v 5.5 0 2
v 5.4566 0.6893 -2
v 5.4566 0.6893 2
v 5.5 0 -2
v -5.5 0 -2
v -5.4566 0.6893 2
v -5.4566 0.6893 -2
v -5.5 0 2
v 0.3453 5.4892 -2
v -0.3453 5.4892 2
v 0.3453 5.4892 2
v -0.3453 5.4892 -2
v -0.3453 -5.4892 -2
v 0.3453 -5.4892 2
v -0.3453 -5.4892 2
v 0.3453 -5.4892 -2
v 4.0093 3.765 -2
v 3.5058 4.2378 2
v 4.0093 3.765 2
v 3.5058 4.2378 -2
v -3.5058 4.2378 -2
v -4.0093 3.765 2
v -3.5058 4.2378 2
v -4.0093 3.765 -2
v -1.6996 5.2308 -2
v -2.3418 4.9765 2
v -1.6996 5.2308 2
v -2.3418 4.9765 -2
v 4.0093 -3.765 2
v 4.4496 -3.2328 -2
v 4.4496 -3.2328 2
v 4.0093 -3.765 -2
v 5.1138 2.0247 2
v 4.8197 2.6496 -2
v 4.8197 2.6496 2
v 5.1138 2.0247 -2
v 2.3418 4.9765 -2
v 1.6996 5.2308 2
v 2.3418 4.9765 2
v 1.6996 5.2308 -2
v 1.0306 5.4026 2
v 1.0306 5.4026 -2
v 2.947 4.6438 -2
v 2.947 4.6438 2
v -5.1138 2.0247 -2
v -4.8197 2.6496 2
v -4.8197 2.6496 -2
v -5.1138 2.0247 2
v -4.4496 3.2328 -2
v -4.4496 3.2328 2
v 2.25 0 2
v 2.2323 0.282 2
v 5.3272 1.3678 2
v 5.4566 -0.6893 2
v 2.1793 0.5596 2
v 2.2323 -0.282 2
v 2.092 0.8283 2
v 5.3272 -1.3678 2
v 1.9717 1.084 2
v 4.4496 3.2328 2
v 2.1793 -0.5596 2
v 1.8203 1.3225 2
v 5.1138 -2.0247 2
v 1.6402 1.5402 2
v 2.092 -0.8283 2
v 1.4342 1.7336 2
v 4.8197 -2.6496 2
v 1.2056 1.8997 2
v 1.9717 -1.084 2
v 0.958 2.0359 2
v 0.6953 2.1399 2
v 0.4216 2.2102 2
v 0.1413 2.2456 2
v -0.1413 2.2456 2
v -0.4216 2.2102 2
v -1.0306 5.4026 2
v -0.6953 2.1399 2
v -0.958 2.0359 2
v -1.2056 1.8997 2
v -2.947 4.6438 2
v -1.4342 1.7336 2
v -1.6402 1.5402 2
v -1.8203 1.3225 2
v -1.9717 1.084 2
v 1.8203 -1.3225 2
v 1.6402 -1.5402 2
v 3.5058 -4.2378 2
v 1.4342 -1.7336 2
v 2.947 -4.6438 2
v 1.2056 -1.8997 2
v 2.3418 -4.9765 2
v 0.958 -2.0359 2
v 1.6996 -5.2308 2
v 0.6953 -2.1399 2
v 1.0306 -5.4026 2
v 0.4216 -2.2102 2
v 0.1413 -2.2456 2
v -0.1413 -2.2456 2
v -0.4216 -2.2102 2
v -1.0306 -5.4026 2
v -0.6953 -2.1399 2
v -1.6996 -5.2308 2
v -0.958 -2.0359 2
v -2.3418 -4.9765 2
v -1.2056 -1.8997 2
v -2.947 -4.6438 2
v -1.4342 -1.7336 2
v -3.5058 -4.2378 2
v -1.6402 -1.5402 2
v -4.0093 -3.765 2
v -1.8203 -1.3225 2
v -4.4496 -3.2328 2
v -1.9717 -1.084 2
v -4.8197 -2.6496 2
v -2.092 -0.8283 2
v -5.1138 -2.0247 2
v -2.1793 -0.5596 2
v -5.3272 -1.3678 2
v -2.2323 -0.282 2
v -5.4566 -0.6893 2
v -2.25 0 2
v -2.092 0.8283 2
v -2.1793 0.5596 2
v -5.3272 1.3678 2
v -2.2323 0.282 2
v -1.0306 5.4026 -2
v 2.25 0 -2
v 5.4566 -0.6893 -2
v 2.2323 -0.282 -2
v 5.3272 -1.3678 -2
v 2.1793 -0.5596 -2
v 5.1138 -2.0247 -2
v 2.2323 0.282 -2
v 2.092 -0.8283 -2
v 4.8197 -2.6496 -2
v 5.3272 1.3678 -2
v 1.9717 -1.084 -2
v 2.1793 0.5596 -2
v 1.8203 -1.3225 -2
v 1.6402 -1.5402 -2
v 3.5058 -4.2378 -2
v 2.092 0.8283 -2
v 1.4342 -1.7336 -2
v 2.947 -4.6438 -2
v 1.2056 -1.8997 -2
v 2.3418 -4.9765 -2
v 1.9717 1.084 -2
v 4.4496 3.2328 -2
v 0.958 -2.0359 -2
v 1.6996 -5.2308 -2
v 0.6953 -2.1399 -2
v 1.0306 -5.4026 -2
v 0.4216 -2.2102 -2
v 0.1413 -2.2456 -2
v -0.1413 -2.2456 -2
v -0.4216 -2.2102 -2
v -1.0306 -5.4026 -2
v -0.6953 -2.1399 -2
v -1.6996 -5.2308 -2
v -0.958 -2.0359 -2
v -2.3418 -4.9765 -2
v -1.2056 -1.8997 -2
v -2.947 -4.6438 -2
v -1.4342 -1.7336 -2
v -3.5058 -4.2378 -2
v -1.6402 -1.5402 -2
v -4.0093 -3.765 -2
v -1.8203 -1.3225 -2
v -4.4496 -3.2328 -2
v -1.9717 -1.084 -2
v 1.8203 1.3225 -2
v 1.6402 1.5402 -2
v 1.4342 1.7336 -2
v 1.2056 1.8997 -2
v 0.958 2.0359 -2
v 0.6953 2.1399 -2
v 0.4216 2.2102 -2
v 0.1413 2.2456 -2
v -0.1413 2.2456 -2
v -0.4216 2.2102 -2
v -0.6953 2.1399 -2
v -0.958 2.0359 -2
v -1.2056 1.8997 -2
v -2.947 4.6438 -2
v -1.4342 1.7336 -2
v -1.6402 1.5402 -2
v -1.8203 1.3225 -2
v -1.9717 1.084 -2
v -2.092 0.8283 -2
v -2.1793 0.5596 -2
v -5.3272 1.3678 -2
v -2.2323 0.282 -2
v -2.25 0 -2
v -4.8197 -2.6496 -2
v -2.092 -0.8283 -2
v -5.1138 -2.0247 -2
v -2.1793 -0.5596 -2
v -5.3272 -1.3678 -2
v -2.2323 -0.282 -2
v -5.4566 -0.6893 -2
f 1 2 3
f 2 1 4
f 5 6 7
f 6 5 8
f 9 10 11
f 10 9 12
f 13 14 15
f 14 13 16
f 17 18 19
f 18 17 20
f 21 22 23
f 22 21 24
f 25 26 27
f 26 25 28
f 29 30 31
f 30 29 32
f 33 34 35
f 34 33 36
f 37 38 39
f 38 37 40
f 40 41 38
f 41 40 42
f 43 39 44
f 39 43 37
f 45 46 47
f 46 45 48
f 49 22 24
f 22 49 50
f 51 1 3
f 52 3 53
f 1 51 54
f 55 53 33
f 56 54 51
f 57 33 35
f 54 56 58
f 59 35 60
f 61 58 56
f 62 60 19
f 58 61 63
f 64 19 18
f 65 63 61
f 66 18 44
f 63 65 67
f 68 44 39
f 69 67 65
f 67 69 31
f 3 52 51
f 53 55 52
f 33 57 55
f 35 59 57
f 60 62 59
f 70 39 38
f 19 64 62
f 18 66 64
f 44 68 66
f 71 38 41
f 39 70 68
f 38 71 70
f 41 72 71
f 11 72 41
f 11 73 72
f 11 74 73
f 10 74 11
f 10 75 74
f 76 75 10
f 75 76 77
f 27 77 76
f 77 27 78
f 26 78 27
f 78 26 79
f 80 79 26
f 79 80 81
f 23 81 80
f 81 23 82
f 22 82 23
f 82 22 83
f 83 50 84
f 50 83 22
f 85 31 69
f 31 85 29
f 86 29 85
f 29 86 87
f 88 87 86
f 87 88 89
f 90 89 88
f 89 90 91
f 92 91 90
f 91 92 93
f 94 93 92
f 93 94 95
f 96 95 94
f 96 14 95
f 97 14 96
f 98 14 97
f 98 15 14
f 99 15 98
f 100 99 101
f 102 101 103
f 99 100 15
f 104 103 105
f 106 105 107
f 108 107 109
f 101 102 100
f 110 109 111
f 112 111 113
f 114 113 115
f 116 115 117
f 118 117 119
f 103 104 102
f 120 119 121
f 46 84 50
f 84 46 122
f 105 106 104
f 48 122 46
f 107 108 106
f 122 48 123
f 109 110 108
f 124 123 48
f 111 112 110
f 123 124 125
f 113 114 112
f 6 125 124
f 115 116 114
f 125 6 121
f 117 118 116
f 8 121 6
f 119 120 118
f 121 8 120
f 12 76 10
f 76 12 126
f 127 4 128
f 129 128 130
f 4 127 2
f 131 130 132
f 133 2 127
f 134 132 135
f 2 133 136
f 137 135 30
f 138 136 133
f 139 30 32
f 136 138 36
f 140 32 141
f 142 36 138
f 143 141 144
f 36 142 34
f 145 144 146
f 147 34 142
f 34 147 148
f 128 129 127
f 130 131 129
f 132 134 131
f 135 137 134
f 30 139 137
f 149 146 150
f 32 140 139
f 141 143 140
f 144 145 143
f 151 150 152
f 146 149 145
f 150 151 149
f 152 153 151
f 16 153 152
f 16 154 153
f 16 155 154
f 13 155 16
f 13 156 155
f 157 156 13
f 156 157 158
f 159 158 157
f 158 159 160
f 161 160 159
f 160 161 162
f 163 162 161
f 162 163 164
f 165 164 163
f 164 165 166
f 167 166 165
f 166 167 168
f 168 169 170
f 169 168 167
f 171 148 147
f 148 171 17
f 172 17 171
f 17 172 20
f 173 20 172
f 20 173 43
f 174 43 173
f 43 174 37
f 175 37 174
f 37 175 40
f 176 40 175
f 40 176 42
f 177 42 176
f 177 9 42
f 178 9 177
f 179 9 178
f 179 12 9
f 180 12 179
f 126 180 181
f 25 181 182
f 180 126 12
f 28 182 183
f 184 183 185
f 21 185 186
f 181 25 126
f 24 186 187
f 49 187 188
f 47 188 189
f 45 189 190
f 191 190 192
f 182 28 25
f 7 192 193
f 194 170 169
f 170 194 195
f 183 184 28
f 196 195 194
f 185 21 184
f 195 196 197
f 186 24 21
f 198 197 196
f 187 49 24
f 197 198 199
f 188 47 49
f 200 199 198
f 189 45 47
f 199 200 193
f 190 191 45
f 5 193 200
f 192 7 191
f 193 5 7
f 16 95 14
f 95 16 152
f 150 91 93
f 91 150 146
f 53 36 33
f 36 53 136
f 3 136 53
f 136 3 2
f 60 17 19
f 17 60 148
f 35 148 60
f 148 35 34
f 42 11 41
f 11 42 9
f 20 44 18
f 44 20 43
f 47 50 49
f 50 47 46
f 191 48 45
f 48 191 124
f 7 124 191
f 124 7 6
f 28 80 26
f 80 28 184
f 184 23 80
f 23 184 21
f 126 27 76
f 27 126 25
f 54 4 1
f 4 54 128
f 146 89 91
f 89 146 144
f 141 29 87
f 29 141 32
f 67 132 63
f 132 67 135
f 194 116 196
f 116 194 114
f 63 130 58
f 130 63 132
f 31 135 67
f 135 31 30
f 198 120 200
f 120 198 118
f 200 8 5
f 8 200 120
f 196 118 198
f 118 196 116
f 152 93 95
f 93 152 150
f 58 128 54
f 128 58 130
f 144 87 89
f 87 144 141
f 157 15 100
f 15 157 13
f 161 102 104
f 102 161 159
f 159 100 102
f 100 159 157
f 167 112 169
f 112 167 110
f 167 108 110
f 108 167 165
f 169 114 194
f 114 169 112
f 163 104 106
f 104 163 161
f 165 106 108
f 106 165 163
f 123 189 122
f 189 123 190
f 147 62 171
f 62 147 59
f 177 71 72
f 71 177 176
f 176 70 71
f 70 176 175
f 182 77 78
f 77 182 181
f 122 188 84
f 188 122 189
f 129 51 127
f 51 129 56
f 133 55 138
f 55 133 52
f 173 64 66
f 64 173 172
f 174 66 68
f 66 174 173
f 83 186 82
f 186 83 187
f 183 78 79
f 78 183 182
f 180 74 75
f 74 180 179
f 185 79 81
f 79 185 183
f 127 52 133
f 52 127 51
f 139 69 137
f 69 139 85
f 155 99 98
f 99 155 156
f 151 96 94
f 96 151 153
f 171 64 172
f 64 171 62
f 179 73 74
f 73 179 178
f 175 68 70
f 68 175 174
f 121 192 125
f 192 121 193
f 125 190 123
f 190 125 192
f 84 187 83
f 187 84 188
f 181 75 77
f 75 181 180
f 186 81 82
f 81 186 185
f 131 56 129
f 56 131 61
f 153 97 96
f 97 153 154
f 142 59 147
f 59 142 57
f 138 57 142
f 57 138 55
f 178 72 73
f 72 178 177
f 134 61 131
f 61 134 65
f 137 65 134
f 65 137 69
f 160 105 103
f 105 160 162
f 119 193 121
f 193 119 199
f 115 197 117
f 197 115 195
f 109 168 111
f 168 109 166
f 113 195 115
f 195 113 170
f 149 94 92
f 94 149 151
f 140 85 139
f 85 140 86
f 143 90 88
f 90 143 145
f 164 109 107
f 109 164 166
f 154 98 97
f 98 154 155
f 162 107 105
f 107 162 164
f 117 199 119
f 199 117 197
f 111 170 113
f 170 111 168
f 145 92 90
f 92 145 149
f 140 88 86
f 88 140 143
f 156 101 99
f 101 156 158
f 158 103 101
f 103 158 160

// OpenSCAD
$fn = 50;


difference() {
	union() {
		translate(v = [0, 0, -2.0000000000]) {
			cylinder(h = 4, r = 5.5000000000);
		}
	}
	union() {
		translate(v = [0, 0, -100.0000000000]) {
			cylinder(h = 200, r = 2.2500000000);
		}
	}
}
